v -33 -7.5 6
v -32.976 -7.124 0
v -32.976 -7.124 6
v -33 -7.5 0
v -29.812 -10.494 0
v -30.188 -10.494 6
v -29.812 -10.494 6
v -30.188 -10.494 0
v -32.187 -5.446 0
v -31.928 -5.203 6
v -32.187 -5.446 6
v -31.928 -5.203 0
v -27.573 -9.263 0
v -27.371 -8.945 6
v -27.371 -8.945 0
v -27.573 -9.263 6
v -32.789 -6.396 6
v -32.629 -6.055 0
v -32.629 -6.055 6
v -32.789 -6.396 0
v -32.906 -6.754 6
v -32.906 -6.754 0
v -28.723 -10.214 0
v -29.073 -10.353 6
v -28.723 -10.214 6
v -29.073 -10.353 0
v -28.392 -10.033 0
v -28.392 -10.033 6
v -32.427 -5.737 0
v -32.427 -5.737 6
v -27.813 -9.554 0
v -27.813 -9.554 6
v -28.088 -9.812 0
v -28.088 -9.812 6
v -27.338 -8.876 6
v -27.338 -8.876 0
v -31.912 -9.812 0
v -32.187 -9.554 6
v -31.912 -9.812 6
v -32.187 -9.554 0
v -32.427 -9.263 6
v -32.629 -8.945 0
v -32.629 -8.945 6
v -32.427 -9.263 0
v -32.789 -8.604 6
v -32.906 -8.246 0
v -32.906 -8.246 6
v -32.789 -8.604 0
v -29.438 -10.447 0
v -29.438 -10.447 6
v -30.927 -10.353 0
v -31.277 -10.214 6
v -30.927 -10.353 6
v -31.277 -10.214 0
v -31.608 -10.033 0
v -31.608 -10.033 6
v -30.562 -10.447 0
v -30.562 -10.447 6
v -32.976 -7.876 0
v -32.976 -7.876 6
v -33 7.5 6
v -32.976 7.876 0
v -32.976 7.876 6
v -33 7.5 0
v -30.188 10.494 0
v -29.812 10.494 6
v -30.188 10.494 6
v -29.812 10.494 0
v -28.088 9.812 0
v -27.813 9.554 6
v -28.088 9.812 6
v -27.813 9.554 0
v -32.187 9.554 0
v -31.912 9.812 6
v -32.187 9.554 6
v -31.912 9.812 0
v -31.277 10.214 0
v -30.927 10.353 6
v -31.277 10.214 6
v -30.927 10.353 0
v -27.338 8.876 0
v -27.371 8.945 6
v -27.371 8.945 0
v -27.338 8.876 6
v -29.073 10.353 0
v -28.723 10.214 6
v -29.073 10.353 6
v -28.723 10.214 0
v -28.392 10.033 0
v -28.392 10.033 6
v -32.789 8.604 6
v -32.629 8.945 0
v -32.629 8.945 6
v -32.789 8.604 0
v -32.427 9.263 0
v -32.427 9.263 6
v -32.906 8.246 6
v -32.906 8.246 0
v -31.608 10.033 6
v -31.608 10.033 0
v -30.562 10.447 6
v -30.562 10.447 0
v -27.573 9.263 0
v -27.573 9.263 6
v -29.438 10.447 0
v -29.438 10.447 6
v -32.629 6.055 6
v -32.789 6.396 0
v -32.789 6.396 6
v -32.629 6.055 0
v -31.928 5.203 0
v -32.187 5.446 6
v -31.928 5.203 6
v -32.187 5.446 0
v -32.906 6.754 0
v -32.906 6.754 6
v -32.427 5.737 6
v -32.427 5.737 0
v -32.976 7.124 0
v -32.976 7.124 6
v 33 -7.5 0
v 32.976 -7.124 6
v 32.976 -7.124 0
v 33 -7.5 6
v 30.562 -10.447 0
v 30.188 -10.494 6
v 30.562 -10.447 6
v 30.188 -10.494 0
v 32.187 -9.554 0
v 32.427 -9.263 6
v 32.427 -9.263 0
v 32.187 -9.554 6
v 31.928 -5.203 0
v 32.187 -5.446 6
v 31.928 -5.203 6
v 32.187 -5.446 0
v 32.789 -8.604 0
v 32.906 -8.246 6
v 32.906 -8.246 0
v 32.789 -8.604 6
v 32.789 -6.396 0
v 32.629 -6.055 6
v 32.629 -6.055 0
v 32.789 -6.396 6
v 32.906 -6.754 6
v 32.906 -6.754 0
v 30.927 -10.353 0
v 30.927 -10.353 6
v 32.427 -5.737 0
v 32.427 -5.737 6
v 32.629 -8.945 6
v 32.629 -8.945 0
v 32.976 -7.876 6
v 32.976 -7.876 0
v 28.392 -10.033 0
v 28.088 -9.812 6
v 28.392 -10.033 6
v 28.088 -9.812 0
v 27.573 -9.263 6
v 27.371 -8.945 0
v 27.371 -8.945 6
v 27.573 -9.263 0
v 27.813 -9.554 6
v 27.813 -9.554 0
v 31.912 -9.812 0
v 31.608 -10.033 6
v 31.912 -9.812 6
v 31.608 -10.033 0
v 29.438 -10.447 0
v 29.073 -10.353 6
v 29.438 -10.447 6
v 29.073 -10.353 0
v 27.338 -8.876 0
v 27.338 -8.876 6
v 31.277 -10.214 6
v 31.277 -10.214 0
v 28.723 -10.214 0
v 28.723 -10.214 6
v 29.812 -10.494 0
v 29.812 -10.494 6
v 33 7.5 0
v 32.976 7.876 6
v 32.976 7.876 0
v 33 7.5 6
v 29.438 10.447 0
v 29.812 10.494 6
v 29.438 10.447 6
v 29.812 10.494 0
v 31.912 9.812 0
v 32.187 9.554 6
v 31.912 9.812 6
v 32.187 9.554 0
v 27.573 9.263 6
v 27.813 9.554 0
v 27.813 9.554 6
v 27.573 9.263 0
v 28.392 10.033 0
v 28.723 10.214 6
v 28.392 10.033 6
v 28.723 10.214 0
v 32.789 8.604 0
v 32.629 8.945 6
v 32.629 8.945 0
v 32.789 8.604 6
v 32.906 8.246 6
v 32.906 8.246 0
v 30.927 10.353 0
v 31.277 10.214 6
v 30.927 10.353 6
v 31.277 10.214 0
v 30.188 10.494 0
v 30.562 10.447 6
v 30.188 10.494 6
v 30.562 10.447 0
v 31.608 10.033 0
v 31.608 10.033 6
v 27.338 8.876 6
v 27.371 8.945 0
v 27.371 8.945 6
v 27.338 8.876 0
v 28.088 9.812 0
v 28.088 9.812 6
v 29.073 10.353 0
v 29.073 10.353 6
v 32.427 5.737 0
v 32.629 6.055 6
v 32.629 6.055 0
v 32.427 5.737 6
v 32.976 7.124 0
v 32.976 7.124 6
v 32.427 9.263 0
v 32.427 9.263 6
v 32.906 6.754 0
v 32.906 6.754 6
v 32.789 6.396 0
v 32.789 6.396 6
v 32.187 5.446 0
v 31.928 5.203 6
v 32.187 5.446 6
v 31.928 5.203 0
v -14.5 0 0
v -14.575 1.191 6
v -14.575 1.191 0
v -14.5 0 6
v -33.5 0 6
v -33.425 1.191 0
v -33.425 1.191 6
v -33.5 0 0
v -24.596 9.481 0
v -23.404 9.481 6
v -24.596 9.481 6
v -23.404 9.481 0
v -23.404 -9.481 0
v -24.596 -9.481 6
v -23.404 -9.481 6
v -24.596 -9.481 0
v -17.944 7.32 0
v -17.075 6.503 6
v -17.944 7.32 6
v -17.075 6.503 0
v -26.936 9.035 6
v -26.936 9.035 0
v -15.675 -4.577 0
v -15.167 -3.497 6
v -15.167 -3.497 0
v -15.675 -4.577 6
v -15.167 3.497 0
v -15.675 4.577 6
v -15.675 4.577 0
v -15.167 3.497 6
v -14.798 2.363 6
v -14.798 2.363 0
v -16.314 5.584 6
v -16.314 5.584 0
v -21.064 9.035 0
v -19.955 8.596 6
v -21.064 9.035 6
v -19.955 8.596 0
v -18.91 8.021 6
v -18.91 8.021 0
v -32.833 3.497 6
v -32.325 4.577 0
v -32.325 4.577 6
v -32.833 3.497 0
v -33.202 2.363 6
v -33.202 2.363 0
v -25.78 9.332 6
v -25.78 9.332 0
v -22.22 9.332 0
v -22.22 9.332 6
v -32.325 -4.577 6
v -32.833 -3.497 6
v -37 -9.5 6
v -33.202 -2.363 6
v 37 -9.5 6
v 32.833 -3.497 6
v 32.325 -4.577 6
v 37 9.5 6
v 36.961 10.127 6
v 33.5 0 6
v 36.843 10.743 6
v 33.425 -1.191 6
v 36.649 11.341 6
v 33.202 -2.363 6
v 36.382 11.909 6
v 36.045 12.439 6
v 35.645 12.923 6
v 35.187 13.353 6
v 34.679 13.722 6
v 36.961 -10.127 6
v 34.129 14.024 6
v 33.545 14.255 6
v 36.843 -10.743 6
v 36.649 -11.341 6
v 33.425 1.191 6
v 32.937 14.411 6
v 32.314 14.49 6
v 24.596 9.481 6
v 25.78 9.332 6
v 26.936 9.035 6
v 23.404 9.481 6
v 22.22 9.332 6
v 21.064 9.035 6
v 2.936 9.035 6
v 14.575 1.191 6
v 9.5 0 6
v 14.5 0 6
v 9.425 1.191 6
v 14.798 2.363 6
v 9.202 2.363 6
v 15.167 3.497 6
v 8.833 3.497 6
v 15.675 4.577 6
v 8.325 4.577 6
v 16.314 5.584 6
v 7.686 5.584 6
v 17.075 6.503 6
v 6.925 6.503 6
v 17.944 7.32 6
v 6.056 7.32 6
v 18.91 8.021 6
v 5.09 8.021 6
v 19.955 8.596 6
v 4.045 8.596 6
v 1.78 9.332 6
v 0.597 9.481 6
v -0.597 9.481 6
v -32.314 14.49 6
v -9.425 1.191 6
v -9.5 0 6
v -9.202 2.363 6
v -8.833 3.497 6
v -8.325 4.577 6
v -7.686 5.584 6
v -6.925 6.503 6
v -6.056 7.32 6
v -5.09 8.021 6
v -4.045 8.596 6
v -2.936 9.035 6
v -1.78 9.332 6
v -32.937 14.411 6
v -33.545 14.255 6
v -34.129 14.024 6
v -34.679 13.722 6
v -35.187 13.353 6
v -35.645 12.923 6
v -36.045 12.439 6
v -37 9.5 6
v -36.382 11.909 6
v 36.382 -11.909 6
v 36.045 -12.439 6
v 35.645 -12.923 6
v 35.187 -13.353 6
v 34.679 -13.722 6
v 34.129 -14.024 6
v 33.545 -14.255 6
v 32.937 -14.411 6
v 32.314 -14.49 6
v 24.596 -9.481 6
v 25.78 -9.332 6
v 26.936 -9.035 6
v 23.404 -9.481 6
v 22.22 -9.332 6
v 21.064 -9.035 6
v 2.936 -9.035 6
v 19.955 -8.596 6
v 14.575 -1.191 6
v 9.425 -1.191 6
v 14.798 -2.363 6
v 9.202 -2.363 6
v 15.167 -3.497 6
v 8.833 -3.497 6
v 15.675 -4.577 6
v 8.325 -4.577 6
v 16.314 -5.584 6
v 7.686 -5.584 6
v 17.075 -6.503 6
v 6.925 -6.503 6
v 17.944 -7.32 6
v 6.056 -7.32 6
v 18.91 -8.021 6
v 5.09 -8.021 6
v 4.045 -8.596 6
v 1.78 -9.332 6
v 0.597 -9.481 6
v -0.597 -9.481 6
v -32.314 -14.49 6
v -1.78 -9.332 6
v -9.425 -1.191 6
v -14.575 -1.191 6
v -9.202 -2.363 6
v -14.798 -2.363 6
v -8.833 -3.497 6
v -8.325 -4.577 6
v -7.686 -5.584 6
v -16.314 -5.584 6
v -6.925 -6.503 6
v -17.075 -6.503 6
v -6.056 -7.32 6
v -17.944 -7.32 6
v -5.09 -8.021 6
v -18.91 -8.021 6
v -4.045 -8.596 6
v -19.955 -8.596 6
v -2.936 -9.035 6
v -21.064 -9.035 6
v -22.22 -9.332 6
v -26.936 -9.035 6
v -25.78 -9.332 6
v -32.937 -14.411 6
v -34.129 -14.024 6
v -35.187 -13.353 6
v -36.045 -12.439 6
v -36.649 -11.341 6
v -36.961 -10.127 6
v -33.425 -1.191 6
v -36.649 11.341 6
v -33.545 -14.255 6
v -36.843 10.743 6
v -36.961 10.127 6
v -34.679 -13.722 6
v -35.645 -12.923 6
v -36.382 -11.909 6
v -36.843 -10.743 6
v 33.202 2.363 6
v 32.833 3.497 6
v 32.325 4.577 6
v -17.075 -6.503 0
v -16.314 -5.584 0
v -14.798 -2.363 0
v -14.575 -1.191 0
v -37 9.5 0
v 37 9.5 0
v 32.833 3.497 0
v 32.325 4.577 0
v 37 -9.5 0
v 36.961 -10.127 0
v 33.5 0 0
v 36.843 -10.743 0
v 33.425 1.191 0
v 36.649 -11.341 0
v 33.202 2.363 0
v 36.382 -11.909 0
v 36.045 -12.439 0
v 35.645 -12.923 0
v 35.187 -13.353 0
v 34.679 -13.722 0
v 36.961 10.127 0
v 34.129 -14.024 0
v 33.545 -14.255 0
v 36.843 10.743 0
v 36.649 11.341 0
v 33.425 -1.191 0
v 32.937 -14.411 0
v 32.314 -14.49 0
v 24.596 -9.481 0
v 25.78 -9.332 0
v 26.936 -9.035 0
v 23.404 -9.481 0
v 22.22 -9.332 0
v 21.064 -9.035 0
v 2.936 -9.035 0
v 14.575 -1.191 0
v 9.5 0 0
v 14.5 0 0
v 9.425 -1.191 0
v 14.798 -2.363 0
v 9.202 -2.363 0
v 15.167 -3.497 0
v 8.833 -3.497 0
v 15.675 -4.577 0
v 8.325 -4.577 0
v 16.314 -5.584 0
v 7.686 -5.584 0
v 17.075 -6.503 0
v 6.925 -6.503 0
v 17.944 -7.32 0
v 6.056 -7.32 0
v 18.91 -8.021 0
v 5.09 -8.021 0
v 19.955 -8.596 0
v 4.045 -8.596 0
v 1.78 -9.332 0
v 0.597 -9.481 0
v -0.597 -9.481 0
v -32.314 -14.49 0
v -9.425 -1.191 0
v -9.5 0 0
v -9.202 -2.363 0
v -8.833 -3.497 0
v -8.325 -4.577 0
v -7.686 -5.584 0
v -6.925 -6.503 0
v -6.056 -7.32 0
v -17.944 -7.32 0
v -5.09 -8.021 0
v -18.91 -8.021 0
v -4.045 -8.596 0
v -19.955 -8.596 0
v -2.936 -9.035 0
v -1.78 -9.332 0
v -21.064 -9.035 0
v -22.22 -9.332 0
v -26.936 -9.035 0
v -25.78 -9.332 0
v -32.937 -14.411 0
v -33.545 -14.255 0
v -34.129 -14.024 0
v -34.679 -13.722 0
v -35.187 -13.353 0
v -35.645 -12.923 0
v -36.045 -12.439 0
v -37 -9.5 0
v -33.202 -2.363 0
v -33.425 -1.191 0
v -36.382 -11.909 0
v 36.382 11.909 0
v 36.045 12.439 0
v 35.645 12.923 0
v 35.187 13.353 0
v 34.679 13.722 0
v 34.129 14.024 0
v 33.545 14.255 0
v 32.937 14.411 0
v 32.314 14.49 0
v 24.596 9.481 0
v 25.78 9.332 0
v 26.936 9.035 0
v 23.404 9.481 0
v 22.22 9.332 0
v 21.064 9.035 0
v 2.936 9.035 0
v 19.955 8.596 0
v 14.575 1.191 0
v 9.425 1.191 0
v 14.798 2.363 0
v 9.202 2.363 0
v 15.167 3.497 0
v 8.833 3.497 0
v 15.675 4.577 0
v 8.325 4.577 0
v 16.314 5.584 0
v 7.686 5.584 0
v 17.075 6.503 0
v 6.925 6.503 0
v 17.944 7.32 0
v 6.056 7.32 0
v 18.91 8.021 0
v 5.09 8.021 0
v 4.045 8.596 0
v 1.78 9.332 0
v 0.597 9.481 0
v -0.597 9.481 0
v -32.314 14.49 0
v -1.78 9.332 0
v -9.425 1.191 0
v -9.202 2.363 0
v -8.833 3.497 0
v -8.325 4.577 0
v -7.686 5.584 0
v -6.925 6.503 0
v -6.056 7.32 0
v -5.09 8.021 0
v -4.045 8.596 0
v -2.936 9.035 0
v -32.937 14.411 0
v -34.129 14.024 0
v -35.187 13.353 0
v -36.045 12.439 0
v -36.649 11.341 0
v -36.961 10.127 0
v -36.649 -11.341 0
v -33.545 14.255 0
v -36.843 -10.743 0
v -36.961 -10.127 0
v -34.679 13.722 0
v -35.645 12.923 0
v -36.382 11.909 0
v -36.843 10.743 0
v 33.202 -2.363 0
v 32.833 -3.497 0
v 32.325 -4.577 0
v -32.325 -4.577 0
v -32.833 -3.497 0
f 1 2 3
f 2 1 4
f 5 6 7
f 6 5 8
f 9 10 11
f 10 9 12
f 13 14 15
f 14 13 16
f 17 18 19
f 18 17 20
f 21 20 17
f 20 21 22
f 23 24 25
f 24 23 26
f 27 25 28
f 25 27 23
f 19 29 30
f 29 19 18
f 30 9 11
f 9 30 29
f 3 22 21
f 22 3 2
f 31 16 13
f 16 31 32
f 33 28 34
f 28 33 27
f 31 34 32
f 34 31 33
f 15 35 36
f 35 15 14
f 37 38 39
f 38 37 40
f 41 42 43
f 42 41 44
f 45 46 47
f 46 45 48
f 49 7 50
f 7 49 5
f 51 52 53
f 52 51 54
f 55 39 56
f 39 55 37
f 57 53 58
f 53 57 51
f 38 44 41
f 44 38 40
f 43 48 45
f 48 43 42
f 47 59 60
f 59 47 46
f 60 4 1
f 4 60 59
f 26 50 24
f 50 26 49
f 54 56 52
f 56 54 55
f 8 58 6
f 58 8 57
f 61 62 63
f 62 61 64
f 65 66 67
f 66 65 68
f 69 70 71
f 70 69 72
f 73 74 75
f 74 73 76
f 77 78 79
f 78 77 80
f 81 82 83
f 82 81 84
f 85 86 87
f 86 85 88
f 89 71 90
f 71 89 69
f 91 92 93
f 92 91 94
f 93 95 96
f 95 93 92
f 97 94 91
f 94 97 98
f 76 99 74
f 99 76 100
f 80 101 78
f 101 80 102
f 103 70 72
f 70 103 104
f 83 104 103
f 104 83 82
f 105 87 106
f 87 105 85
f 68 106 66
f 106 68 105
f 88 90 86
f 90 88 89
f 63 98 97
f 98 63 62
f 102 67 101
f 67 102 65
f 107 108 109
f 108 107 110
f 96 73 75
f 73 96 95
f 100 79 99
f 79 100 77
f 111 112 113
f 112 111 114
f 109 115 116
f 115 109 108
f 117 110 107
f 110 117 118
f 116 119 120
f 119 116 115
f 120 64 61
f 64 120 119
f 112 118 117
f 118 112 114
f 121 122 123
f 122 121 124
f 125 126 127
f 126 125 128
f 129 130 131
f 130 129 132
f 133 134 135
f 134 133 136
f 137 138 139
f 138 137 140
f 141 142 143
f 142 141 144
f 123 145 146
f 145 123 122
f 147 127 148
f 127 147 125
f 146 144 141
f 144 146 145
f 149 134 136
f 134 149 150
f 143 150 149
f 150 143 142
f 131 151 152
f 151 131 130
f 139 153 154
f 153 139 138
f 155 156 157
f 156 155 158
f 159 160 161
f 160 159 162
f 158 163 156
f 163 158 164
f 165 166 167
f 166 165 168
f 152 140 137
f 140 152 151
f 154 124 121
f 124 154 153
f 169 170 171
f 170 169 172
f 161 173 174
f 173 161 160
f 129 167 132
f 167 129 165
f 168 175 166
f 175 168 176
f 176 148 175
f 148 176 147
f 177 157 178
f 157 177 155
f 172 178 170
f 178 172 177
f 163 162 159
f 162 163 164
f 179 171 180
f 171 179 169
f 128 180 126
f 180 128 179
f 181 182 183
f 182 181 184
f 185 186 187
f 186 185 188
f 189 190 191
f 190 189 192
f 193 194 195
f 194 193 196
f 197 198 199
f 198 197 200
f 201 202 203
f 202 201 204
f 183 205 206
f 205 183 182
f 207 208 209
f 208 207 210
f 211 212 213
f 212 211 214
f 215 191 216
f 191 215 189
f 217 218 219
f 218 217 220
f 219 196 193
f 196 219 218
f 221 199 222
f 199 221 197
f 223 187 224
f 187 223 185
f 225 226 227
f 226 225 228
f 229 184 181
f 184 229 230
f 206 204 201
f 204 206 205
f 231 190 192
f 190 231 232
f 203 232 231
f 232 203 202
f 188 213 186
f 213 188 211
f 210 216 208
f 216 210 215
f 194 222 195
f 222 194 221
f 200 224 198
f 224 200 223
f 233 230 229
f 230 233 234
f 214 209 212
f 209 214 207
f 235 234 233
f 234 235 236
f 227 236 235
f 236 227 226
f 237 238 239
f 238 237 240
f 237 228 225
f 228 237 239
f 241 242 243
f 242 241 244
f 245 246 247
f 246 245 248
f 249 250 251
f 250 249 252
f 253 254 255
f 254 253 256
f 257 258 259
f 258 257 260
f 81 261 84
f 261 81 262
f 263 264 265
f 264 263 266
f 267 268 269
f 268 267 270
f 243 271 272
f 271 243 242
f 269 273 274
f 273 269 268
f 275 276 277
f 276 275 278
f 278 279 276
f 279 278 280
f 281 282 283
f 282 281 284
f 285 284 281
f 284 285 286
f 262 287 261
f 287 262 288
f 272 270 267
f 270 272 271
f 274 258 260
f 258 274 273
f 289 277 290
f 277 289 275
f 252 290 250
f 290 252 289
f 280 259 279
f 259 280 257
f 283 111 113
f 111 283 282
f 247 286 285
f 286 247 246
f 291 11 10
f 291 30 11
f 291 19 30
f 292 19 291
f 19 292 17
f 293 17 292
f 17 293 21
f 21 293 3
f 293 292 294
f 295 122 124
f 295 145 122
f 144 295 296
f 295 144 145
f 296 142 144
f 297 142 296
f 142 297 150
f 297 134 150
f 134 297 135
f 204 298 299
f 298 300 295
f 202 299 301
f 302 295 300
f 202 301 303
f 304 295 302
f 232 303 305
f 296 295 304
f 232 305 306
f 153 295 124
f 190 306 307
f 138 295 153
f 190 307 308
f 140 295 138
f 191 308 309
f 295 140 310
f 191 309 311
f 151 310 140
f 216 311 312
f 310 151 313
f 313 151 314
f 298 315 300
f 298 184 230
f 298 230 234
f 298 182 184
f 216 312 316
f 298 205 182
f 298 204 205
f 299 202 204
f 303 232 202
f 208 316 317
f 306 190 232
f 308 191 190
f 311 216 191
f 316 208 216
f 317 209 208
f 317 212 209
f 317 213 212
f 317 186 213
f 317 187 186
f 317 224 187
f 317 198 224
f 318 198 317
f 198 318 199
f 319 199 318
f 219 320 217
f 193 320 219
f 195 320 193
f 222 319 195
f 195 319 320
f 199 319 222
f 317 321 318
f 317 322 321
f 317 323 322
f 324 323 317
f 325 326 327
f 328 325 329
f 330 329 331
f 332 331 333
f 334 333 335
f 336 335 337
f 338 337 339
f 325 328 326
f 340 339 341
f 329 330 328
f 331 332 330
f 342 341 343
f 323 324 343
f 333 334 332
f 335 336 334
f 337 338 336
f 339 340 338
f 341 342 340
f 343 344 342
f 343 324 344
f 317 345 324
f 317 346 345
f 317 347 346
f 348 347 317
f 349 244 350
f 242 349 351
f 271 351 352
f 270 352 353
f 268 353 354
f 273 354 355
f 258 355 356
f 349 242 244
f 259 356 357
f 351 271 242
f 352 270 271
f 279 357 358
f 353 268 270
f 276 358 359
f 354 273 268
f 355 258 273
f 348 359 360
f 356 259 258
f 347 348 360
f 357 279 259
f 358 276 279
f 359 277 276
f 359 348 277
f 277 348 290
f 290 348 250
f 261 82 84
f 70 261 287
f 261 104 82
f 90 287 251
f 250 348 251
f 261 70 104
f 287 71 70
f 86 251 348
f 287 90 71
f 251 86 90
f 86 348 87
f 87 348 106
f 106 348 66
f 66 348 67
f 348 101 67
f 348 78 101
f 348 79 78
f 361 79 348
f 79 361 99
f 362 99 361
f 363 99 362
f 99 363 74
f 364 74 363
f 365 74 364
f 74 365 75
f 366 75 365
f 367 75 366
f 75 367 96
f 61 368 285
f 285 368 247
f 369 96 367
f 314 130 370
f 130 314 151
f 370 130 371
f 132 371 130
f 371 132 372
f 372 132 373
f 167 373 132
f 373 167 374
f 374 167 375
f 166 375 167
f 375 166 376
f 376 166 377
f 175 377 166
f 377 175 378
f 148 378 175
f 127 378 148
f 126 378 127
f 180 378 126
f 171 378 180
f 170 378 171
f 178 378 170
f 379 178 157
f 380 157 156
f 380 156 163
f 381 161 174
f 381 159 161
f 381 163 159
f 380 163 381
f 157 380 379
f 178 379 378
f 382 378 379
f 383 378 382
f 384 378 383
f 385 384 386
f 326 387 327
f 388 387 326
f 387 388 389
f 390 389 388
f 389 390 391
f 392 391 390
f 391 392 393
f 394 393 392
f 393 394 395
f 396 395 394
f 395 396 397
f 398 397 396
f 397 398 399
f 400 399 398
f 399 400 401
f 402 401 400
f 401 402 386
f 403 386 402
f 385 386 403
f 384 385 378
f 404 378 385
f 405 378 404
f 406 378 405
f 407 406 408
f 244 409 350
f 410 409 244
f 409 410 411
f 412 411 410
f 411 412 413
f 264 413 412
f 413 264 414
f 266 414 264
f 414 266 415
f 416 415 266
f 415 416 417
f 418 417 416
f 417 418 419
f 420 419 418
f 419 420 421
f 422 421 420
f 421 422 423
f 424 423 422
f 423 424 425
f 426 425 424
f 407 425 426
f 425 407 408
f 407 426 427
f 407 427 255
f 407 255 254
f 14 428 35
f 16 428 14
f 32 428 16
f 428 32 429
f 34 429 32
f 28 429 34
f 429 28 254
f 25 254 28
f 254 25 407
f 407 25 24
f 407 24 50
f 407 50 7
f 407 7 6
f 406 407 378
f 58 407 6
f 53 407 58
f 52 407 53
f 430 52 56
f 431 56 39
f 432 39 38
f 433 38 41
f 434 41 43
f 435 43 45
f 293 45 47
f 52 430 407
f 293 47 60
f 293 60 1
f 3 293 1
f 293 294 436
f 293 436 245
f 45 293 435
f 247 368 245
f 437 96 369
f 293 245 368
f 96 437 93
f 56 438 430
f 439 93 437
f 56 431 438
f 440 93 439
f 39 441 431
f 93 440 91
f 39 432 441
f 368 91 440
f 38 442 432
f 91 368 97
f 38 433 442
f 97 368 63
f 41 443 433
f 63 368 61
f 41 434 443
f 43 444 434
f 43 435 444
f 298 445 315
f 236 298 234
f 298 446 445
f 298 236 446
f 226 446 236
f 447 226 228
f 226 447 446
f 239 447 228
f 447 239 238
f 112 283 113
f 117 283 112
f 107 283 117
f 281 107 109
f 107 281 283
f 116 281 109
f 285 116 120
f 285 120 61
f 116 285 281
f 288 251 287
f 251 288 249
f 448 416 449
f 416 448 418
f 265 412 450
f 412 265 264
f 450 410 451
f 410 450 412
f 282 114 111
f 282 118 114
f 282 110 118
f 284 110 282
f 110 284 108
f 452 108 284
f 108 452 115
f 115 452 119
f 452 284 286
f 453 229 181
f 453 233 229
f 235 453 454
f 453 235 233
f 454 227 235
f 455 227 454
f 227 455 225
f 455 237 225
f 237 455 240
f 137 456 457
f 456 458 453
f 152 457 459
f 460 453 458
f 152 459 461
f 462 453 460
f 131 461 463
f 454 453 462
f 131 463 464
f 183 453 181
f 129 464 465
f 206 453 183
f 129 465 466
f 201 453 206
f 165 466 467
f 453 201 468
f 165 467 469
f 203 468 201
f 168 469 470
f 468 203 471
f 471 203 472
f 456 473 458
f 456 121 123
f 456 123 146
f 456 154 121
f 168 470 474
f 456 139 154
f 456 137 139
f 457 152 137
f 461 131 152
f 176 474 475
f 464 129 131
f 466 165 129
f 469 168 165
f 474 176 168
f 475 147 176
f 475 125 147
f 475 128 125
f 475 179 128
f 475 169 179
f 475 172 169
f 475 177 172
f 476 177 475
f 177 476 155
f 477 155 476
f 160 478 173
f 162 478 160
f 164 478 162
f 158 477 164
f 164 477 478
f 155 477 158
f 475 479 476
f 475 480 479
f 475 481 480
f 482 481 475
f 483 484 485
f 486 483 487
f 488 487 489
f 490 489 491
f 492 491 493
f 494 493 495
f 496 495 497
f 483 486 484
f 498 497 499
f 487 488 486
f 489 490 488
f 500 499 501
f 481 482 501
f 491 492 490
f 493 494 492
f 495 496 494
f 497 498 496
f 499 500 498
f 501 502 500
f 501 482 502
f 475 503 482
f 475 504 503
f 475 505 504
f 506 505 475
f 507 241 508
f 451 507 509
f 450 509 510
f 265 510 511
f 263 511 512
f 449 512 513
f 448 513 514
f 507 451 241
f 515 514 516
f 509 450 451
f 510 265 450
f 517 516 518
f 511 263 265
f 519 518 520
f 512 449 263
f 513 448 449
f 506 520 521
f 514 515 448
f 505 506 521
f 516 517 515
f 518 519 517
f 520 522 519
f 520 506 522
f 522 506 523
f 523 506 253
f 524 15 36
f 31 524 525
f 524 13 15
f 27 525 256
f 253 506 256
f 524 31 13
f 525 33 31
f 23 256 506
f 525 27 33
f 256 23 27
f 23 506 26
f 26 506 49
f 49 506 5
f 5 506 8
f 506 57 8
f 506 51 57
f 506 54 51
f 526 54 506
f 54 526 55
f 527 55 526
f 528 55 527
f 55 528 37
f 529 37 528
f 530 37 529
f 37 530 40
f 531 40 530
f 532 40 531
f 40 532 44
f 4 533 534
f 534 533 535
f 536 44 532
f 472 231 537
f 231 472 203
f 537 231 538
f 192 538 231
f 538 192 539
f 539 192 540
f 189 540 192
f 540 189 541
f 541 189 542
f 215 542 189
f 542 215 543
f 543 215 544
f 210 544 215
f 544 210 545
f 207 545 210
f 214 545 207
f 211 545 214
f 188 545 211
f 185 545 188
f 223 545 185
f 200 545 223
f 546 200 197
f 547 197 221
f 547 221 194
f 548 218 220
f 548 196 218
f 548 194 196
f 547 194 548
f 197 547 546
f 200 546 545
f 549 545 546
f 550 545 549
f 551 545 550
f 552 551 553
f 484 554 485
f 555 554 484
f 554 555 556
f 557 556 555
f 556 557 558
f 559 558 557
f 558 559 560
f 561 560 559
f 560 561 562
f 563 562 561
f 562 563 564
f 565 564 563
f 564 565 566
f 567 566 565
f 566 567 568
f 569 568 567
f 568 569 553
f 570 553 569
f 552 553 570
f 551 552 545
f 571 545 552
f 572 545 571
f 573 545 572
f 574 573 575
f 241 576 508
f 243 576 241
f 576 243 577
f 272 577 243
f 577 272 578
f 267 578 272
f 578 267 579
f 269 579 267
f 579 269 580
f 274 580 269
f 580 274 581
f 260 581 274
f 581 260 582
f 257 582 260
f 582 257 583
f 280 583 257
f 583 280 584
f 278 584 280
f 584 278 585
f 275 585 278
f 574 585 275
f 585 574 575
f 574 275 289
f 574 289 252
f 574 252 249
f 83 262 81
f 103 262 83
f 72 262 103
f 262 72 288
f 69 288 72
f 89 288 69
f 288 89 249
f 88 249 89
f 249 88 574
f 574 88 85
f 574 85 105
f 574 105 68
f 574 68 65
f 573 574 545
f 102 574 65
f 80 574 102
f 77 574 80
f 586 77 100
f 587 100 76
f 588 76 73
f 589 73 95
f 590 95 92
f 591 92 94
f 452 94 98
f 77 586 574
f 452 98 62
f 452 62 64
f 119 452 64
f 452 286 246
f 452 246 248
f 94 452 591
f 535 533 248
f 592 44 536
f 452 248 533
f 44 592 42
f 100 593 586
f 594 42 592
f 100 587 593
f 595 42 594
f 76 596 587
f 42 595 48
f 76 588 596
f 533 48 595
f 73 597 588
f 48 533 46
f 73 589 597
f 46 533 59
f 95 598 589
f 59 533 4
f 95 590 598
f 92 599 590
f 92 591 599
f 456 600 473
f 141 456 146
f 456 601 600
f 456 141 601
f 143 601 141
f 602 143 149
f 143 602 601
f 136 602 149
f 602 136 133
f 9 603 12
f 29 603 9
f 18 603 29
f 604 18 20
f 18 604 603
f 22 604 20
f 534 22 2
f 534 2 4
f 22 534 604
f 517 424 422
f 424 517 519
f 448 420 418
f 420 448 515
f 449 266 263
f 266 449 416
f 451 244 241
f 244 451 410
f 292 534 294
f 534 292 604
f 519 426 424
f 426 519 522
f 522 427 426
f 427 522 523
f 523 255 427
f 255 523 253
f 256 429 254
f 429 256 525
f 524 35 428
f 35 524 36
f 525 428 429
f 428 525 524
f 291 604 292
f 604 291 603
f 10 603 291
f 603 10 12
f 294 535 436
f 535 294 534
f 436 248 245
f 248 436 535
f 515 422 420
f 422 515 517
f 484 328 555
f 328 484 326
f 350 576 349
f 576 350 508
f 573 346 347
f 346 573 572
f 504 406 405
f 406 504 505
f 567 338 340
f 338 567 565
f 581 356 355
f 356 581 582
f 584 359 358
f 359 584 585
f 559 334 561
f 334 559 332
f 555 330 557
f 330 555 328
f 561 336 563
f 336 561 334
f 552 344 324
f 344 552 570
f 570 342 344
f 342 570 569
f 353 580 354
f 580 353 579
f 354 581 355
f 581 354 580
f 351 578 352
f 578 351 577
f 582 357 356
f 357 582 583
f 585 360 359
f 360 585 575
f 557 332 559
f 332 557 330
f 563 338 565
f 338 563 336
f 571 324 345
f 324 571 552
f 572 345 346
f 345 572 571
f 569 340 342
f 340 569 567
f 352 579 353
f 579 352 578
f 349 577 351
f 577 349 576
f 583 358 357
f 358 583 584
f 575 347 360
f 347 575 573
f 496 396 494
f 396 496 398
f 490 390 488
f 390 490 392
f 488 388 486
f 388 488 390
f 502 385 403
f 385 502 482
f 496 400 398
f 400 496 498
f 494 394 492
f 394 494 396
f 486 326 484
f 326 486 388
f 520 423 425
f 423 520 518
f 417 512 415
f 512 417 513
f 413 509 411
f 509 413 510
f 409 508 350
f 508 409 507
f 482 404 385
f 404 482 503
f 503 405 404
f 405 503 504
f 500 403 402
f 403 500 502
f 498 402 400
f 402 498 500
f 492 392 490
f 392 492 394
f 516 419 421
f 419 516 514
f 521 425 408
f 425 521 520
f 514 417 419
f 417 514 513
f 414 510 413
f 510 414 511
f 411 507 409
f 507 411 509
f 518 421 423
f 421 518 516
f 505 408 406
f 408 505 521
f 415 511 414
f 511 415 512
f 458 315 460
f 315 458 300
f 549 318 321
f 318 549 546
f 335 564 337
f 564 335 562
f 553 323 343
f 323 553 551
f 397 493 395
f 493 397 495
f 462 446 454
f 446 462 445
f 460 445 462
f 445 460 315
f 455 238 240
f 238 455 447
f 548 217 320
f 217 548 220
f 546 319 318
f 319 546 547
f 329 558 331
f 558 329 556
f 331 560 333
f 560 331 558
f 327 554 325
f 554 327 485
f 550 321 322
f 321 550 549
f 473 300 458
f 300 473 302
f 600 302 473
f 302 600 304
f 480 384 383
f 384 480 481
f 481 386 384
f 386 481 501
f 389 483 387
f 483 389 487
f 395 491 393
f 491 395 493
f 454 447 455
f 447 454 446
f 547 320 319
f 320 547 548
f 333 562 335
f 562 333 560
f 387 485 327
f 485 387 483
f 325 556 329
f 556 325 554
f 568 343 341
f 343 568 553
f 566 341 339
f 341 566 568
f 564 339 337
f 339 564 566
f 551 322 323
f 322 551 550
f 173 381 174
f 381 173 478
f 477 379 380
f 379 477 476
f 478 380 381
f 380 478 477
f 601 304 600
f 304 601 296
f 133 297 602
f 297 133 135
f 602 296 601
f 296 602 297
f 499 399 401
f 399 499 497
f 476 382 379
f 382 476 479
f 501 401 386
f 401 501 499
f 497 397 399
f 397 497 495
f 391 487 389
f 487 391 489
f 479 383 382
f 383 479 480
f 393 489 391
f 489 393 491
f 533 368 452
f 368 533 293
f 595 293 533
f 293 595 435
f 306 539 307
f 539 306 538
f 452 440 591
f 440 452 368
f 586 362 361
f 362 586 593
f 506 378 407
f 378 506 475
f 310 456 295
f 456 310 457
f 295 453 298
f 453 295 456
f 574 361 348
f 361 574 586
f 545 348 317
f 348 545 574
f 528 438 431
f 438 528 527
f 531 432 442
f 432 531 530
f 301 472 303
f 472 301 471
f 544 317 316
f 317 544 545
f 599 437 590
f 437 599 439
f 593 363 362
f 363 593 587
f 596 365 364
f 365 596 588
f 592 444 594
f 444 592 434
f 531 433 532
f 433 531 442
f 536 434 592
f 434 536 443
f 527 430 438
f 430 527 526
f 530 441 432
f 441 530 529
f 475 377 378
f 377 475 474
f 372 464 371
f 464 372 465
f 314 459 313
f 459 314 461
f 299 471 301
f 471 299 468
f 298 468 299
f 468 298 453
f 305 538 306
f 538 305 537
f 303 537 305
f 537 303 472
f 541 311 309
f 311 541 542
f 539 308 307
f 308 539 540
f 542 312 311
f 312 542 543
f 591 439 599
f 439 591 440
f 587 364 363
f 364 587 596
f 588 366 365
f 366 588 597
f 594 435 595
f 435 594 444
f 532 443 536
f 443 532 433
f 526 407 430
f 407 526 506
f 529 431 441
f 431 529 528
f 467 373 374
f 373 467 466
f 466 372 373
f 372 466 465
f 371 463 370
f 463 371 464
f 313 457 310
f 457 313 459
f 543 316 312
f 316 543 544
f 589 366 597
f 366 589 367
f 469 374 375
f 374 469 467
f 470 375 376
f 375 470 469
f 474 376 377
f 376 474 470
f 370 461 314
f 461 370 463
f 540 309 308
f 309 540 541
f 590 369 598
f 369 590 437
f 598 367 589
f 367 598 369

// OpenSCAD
$fn = 50;


difference() {
	union() {
		hull() {
			translate(v = [-32.0000000000, 9.5000000000, 0]) {
				cylinder(h = 6, r = 5);
			}
			translate(v = [32.0000000000, 9.5000000000, 0]) {
				cylinder(h = 6, r = 5);
			}
			translate(v = [-32.0000000000, -9.5000000000, 0]) {
				cylinder(h = 6, r = 5);
			}
			translate(v = [32.0000000000, -9.5000000000, 0]) {
				cylinder(h = 6, r = 5);
			}
		}
	}
	union() {
		#translate(v = [-30.0000000000, -7.5000000000, -100.0000000000]) {
			cylinder(h = 200, r = 3.0000000000);
		}
		#translate(v = [-30.0000000000, 7.5000000000, -100.0000000000]) {
			cylinder(h = 200, r = 3.0000000000);
		}
		#translate(v = [30.0000000000, -7.5000000000, -100.0000000000]) {
			cylinder(h = 200, r = 3.0000000000);
		}
		#translate(v = [30.0000000000, 7.5000000000, -100.0000000000]) {
			cylinder(h = 200, r = 3.0000000000);
		}
		#translate(v = [-24.0000000000, 0, 0]) {
			cylinder(h = 6, r = 9.5000000000);
		}
		#cylinder(h = 6, r = 9.5000000000);
		#translate(v = [24.0000000000, 0, 0]) {
			cylinder(h = 6, r = 9.5000000000);
		}
	}
}
